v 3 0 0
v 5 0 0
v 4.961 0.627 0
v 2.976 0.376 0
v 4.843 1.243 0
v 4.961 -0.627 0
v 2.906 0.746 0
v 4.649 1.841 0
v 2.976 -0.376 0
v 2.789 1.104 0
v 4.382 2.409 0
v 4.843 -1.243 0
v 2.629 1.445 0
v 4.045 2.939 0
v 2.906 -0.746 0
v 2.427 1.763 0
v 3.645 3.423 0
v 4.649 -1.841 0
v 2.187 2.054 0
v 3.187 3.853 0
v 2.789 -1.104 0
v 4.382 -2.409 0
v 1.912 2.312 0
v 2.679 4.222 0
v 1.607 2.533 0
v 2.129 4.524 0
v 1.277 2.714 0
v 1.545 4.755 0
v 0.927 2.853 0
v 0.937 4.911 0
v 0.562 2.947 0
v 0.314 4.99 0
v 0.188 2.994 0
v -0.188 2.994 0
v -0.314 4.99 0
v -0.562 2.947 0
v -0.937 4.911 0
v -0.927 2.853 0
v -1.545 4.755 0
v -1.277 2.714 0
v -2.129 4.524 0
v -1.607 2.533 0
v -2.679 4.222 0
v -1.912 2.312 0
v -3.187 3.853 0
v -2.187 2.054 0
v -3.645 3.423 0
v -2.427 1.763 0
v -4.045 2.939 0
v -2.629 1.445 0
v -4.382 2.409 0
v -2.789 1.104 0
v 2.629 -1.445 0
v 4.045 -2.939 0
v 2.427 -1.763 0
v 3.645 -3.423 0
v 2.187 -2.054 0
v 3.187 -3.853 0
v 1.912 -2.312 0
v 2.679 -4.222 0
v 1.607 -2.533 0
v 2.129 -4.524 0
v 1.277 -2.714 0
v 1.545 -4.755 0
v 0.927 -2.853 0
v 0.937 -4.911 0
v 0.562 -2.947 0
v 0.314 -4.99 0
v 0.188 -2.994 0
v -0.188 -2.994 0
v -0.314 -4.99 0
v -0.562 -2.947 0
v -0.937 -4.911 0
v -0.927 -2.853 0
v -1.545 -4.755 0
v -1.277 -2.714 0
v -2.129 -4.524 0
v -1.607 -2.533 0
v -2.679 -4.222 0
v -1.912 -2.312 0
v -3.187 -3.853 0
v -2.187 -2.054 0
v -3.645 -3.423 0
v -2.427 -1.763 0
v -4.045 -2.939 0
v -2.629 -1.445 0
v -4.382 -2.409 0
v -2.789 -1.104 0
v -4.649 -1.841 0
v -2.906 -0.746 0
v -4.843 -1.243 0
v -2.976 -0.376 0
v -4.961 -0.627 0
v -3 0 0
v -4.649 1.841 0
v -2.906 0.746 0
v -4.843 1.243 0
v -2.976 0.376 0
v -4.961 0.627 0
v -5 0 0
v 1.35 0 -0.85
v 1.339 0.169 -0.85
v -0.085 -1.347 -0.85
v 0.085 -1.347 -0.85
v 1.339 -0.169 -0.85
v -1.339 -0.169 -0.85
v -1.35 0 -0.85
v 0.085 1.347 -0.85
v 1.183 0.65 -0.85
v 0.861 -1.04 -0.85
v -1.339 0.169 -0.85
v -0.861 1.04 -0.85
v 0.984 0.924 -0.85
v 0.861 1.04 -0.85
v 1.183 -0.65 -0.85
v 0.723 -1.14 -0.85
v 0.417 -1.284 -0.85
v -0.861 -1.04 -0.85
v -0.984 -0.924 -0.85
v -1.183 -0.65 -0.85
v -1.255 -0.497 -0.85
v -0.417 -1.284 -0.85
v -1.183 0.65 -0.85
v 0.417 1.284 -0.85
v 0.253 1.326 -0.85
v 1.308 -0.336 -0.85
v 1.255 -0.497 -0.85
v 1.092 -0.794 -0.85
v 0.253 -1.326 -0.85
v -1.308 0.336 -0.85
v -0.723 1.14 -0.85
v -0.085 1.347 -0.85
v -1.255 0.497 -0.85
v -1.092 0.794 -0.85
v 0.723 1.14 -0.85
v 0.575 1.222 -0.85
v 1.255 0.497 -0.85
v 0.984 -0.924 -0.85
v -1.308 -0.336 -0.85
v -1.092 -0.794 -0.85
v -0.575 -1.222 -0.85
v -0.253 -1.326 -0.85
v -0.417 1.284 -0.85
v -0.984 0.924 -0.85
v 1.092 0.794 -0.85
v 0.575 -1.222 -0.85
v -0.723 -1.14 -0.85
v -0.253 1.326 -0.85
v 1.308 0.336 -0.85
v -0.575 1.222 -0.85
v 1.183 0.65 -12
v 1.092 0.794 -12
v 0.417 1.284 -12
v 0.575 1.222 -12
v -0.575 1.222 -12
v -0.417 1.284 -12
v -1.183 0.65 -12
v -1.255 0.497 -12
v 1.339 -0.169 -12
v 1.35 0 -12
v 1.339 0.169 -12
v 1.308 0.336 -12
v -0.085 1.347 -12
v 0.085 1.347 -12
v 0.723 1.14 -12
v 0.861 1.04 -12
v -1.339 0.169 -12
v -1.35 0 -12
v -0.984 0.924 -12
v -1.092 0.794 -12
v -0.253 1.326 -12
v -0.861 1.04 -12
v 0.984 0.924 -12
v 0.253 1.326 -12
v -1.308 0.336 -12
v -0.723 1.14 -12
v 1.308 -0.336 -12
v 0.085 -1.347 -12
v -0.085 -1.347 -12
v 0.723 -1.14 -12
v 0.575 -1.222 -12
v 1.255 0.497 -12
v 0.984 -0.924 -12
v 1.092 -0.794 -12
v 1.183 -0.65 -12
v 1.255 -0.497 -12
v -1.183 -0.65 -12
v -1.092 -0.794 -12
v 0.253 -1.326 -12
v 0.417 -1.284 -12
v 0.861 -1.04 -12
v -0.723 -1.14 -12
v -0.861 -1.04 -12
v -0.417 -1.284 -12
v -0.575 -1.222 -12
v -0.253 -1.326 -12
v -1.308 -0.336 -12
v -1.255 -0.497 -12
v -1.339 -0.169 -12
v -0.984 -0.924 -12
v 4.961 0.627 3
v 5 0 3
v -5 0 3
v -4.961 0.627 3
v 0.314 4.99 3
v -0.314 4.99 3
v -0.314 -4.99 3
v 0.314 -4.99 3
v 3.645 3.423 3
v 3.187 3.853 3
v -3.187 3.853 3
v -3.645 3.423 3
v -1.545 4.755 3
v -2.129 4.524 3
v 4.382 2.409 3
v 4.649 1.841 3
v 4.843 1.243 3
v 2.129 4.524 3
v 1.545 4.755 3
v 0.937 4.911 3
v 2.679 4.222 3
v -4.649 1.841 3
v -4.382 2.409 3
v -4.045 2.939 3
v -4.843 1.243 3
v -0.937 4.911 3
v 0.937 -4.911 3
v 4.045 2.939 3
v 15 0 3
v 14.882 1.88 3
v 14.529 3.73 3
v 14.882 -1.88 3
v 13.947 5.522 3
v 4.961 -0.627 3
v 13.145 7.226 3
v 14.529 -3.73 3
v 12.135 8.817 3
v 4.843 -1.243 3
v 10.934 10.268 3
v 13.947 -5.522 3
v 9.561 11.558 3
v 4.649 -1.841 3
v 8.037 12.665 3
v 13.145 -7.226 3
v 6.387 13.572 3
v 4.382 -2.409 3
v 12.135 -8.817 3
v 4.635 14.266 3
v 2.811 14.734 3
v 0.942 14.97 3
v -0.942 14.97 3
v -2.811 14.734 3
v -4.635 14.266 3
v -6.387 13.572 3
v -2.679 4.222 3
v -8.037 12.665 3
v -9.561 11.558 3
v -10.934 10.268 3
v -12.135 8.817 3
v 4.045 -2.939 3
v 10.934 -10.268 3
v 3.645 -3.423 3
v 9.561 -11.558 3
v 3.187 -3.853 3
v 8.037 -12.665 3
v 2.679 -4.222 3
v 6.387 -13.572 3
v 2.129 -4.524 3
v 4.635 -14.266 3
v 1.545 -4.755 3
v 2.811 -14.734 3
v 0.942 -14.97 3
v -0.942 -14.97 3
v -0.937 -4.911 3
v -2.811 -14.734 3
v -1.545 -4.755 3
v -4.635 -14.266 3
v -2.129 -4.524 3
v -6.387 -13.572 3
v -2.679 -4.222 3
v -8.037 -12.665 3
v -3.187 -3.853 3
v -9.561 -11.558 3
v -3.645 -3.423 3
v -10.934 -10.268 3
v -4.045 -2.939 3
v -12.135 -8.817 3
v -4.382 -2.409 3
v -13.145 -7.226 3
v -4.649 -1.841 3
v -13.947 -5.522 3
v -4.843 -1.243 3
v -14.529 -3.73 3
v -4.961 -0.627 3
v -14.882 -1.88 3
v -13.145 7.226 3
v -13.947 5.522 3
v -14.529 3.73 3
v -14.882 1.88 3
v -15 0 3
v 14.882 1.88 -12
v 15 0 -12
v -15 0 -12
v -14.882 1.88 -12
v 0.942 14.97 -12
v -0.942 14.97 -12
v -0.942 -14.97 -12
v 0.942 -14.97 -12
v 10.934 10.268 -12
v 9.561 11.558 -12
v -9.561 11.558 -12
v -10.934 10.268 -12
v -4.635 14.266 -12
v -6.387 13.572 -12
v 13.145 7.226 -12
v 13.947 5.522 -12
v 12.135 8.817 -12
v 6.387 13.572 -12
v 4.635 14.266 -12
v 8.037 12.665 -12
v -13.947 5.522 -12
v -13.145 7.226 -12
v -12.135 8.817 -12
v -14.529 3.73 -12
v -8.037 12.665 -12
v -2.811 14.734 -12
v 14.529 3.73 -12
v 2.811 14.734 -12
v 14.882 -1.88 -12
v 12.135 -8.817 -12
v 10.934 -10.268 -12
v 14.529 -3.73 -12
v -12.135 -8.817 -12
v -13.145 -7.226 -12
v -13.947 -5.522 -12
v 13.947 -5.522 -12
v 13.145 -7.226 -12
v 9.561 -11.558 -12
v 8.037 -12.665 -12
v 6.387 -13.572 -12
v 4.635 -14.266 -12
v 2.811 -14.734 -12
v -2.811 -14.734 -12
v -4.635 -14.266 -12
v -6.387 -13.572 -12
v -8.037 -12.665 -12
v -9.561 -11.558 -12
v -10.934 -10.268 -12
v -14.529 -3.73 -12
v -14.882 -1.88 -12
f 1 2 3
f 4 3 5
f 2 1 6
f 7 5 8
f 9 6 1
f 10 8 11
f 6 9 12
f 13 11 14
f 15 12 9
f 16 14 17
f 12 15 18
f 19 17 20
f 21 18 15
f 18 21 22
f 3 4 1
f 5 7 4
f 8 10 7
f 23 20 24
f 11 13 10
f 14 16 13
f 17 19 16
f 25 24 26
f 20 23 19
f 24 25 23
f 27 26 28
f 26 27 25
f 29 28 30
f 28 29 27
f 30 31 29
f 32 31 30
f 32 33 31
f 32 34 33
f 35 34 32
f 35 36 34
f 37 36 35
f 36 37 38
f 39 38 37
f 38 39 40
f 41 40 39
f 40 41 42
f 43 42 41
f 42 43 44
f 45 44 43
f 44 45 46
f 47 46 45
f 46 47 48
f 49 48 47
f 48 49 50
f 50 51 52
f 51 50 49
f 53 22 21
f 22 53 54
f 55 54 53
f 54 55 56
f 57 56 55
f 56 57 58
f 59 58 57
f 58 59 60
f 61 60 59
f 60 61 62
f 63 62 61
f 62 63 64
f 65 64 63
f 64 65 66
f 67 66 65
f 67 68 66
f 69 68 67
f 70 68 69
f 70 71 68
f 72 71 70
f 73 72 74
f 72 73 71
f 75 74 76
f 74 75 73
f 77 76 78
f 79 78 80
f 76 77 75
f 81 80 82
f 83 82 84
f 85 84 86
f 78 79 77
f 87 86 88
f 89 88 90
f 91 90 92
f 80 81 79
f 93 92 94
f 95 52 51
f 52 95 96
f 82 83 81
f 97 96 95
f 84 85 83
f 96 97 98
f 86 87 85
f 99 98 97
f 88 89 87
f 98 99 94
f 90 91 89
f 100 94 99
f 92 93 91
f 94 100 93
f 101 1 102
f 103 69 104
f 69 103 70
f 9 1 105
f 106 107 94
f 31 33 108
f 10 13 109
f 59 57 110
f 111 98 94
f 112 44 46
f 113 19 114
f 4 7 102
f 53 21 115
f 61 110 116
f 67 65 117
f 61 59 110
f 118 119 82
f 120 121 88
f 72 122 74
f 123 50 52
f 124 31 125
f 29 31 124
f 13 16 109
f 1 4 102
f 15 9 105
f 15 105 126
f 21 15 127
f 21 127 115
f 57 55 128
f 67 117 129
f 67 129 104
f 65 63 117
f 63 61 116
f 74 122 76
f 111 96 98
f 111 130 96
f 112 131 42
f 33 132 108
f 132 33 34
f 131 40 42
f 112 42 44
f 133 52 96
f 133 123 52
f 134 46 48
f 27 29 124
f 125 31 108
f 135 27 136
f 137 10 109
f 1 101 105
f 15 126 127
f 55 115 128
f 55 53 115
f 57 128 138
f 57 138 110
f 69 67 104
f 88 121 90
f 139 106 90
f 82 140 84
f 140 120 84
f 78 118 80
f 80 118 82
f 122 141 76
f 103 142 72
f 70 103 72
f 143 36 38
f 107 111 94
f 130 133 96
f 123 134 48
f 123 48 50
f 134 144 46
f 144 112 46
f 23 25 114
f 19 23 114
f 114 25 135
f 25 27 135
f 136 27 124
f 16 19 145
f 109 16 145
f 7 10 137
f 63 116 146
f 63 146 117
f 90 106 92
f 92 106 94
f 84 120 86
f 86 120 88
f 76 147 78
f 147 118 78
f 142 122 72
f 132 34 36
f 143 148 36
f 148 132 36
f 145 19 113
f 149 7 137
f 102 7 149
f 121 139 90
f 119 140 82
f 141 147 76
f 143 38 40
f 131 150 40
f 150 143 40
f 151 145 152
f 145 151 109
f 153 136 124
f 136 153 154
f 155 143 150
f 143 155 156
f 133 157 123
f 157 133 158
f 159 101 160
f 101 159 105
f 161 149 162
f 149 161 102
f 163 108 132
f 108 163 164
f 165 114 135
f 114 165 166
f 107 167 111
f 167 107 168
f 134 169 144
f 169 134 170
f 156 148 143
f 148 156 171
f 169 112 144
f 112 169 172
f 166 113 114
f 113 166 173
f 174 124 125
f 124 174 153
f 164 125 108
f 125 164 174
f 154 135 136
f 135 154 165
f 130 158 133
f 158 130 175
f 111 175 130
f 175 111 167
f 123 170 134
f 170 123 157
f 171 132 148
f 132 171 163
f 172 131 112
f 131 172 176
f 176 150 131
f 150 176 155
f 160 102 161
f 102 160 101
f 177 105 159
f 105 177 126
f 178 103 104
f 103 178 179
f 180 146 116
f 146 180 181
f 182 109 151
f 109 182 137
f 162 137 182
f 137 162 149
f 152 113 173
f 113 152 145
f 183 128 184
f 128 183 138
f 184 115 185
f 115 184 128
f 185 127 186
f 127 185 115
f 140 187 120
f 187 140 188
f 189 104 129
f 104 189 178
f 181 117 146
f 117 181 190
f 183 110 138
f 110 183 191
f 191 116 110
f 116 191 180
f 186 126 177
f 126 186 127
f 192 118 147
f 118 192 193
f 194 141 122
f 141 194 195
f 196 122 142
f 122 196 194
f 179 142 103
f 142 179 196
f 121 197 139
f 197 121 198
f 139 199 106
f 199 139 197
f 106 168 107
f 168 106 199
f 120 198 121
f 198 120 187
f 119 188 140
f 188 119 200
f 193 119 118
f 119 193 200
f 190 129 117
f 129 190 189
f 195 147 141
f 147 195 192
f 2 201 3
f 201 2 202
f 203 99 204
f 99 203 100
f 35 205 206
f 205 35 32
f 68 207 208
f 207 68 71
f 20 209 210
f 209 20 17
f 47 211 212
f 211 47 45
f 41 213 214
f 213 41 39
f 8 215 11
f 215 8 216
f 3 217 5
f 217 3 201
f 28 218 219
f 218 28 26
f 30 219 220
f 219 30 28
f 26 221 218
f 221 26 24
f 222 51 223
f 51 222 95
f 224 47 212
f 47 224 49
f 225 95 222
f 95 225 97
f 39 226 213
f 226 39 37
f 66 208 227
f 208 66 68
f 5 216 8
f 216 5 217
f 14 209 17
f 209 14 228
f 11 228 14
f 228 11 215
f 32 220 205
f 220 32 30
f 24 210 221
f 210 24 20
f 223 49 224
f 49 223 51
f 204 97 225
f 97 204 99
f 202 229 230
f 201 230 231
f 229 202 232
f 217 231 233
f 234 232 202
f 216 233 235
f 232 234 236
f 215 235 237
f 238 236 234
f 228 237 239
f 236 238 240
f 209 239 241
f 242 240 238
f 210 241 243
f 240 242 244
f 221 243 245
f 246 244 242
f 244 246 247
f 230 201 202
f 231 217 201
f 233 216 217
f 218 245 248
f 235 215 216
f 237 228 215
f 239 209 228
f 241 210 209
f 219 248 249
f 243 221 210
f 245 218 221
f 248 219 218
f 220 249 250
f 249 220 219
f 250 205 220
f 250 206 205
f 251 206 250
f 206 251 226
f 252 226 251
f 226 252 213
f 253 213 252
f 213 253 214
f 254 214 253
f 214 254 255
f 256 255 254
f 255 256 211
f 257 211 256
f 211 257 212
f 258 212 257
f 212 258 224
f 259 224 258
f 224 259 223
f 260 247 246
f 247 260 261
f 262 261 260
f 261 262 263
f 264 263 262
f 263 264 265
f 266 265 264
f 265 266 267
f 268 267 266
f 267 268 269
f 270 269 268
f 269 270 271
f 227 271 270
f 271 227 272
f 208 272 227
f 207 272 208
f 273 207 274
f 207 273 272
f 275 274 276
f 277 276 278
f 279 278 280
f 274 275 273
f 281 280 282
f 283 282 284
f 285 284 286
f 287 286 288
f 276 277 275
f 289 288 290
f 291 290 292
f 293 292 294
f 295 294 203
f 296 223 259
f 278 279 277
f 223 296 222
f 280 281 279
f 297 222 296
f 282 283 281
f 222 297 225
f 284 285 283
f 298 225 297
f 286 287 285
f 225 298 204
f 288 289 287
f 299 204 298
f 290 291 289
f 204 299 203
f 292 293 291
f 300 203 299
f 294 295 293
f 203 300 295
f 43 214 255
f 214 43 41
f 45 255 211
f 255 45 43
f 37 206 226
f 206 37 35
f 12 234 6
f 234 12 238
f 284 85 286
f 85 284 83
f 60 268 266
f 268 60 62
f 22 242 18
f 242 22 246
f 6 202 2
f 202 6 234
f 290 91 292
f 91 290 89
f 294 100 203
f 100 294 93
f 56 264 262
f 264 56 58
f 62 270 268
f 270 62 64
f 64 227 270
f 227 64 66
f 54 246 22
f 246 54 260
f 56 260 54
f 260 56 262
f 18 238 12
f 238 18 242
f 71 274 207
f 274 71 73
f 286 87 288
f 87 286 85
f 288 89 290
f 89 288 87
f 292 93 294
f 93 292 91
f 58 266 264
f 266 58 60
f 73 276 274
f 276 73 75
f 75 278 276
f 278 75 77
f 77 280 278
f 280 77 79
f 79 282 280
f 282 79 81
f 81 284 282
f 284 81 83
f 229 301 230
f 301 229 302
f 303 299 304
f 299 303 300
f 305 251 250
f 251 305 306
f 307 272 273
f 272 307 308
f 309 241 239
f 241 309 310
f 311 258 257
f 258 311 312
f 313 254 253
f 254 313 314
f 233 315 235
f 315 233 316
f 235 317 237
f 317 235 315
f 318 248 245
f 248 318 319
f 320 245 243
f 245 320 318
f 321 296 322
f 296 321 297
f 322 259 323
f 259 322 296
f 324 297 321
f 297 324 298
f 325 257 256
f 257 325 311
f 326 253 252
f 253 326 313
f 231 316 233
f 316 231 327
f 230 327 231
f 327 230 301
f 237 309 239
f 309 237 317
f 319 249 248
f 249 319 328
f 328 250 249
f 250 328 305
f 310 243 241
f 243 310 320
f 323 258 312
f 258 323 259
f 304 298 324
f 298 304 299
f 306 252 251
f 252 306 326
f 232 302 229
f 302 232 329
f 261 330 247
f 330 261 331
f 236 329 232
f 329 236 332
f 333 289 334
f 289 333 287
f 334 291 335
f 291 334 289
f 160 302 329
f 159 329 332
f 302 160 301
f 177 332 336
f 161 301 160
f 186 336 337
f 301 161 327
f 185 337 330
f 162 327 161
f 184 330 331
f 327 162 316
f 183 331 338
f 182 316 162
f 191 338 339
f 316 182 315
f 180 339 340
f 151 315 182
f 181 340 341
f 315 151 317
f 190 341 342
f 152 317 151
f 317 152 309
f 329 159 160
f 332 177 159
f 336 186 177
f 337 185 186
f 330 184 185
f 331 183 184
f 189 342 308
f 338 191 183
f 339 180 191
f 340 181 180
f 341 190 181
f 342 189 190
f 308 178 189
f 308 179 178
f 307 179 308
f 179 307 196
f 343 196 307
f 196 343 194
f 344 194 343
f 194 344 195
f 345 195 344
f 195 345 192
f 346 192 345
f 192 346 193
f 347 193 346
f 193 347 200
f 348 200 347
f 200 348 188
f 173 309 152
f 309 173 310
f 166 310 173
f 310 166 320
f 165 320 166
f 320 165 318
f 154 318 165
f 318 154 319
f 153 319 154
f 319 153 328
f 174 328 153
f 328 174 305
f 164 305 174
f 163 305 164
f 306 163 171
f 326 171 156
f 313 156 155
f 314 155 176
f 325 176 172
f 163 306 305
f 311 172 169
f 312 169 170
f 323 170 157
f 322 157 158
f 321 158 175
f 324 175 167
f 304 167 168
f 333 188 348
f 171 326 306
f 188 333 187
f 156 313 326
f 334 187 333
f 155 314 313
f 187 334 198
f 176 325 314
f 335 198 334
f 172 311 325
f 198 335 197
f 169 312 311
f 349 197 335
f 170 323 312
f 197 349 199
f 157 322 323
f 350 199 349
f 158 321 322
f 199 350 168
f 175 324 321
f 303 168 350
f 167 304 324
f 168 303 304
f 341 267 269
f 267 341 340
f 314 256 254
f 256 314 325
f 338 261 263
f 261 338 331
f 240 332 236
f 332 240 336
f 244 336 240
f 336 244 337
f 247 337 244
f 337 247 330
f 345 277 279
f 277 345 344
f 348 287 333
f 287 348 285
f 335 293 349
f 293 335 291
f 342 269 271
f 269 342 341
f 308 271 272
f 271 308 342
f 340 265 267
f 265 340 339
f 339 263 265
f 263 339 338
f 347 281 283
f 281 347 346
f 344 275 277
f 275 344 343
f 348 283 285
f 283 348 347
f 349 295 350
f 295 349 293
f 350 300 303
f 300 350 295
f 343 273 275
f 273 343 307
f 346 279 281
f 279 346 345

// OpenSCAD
$fn = 50;


difference() {
	union() {
		translate(v = [0, 0, -12.0000000000]) {
			cylinder(h = 15, r = 15.0000000000);
		}
	}
	union() {
		translate(v = [0, 0, 0]) {
			rotate(a = [0, 0, 0]) {
				difference() {
					union() {
						translate(v = [0, 0, -15.0000000000]) {
							cylinder(h = 15, r = 1.0000000000);
						}
						translate(v = [0, 0, -0.8500000000]) {
							cylinder(h = 0.8500000000, r1 = 1.3500000000, r2 = 3.0000000000);
						}
						translate(v = [0, 0, -15.0000000000]) {
							cylinder(h = 15, r = 1.3500000000);
						}
						translate(v = [0, 0, -15.0000000000]) {
							cylinder(h = 15, r = 1.0000000000);
						}
					}
					union();
				}
			}
		}
		#cylinder(h = 3, r = 5.0000000000);
	}
}
